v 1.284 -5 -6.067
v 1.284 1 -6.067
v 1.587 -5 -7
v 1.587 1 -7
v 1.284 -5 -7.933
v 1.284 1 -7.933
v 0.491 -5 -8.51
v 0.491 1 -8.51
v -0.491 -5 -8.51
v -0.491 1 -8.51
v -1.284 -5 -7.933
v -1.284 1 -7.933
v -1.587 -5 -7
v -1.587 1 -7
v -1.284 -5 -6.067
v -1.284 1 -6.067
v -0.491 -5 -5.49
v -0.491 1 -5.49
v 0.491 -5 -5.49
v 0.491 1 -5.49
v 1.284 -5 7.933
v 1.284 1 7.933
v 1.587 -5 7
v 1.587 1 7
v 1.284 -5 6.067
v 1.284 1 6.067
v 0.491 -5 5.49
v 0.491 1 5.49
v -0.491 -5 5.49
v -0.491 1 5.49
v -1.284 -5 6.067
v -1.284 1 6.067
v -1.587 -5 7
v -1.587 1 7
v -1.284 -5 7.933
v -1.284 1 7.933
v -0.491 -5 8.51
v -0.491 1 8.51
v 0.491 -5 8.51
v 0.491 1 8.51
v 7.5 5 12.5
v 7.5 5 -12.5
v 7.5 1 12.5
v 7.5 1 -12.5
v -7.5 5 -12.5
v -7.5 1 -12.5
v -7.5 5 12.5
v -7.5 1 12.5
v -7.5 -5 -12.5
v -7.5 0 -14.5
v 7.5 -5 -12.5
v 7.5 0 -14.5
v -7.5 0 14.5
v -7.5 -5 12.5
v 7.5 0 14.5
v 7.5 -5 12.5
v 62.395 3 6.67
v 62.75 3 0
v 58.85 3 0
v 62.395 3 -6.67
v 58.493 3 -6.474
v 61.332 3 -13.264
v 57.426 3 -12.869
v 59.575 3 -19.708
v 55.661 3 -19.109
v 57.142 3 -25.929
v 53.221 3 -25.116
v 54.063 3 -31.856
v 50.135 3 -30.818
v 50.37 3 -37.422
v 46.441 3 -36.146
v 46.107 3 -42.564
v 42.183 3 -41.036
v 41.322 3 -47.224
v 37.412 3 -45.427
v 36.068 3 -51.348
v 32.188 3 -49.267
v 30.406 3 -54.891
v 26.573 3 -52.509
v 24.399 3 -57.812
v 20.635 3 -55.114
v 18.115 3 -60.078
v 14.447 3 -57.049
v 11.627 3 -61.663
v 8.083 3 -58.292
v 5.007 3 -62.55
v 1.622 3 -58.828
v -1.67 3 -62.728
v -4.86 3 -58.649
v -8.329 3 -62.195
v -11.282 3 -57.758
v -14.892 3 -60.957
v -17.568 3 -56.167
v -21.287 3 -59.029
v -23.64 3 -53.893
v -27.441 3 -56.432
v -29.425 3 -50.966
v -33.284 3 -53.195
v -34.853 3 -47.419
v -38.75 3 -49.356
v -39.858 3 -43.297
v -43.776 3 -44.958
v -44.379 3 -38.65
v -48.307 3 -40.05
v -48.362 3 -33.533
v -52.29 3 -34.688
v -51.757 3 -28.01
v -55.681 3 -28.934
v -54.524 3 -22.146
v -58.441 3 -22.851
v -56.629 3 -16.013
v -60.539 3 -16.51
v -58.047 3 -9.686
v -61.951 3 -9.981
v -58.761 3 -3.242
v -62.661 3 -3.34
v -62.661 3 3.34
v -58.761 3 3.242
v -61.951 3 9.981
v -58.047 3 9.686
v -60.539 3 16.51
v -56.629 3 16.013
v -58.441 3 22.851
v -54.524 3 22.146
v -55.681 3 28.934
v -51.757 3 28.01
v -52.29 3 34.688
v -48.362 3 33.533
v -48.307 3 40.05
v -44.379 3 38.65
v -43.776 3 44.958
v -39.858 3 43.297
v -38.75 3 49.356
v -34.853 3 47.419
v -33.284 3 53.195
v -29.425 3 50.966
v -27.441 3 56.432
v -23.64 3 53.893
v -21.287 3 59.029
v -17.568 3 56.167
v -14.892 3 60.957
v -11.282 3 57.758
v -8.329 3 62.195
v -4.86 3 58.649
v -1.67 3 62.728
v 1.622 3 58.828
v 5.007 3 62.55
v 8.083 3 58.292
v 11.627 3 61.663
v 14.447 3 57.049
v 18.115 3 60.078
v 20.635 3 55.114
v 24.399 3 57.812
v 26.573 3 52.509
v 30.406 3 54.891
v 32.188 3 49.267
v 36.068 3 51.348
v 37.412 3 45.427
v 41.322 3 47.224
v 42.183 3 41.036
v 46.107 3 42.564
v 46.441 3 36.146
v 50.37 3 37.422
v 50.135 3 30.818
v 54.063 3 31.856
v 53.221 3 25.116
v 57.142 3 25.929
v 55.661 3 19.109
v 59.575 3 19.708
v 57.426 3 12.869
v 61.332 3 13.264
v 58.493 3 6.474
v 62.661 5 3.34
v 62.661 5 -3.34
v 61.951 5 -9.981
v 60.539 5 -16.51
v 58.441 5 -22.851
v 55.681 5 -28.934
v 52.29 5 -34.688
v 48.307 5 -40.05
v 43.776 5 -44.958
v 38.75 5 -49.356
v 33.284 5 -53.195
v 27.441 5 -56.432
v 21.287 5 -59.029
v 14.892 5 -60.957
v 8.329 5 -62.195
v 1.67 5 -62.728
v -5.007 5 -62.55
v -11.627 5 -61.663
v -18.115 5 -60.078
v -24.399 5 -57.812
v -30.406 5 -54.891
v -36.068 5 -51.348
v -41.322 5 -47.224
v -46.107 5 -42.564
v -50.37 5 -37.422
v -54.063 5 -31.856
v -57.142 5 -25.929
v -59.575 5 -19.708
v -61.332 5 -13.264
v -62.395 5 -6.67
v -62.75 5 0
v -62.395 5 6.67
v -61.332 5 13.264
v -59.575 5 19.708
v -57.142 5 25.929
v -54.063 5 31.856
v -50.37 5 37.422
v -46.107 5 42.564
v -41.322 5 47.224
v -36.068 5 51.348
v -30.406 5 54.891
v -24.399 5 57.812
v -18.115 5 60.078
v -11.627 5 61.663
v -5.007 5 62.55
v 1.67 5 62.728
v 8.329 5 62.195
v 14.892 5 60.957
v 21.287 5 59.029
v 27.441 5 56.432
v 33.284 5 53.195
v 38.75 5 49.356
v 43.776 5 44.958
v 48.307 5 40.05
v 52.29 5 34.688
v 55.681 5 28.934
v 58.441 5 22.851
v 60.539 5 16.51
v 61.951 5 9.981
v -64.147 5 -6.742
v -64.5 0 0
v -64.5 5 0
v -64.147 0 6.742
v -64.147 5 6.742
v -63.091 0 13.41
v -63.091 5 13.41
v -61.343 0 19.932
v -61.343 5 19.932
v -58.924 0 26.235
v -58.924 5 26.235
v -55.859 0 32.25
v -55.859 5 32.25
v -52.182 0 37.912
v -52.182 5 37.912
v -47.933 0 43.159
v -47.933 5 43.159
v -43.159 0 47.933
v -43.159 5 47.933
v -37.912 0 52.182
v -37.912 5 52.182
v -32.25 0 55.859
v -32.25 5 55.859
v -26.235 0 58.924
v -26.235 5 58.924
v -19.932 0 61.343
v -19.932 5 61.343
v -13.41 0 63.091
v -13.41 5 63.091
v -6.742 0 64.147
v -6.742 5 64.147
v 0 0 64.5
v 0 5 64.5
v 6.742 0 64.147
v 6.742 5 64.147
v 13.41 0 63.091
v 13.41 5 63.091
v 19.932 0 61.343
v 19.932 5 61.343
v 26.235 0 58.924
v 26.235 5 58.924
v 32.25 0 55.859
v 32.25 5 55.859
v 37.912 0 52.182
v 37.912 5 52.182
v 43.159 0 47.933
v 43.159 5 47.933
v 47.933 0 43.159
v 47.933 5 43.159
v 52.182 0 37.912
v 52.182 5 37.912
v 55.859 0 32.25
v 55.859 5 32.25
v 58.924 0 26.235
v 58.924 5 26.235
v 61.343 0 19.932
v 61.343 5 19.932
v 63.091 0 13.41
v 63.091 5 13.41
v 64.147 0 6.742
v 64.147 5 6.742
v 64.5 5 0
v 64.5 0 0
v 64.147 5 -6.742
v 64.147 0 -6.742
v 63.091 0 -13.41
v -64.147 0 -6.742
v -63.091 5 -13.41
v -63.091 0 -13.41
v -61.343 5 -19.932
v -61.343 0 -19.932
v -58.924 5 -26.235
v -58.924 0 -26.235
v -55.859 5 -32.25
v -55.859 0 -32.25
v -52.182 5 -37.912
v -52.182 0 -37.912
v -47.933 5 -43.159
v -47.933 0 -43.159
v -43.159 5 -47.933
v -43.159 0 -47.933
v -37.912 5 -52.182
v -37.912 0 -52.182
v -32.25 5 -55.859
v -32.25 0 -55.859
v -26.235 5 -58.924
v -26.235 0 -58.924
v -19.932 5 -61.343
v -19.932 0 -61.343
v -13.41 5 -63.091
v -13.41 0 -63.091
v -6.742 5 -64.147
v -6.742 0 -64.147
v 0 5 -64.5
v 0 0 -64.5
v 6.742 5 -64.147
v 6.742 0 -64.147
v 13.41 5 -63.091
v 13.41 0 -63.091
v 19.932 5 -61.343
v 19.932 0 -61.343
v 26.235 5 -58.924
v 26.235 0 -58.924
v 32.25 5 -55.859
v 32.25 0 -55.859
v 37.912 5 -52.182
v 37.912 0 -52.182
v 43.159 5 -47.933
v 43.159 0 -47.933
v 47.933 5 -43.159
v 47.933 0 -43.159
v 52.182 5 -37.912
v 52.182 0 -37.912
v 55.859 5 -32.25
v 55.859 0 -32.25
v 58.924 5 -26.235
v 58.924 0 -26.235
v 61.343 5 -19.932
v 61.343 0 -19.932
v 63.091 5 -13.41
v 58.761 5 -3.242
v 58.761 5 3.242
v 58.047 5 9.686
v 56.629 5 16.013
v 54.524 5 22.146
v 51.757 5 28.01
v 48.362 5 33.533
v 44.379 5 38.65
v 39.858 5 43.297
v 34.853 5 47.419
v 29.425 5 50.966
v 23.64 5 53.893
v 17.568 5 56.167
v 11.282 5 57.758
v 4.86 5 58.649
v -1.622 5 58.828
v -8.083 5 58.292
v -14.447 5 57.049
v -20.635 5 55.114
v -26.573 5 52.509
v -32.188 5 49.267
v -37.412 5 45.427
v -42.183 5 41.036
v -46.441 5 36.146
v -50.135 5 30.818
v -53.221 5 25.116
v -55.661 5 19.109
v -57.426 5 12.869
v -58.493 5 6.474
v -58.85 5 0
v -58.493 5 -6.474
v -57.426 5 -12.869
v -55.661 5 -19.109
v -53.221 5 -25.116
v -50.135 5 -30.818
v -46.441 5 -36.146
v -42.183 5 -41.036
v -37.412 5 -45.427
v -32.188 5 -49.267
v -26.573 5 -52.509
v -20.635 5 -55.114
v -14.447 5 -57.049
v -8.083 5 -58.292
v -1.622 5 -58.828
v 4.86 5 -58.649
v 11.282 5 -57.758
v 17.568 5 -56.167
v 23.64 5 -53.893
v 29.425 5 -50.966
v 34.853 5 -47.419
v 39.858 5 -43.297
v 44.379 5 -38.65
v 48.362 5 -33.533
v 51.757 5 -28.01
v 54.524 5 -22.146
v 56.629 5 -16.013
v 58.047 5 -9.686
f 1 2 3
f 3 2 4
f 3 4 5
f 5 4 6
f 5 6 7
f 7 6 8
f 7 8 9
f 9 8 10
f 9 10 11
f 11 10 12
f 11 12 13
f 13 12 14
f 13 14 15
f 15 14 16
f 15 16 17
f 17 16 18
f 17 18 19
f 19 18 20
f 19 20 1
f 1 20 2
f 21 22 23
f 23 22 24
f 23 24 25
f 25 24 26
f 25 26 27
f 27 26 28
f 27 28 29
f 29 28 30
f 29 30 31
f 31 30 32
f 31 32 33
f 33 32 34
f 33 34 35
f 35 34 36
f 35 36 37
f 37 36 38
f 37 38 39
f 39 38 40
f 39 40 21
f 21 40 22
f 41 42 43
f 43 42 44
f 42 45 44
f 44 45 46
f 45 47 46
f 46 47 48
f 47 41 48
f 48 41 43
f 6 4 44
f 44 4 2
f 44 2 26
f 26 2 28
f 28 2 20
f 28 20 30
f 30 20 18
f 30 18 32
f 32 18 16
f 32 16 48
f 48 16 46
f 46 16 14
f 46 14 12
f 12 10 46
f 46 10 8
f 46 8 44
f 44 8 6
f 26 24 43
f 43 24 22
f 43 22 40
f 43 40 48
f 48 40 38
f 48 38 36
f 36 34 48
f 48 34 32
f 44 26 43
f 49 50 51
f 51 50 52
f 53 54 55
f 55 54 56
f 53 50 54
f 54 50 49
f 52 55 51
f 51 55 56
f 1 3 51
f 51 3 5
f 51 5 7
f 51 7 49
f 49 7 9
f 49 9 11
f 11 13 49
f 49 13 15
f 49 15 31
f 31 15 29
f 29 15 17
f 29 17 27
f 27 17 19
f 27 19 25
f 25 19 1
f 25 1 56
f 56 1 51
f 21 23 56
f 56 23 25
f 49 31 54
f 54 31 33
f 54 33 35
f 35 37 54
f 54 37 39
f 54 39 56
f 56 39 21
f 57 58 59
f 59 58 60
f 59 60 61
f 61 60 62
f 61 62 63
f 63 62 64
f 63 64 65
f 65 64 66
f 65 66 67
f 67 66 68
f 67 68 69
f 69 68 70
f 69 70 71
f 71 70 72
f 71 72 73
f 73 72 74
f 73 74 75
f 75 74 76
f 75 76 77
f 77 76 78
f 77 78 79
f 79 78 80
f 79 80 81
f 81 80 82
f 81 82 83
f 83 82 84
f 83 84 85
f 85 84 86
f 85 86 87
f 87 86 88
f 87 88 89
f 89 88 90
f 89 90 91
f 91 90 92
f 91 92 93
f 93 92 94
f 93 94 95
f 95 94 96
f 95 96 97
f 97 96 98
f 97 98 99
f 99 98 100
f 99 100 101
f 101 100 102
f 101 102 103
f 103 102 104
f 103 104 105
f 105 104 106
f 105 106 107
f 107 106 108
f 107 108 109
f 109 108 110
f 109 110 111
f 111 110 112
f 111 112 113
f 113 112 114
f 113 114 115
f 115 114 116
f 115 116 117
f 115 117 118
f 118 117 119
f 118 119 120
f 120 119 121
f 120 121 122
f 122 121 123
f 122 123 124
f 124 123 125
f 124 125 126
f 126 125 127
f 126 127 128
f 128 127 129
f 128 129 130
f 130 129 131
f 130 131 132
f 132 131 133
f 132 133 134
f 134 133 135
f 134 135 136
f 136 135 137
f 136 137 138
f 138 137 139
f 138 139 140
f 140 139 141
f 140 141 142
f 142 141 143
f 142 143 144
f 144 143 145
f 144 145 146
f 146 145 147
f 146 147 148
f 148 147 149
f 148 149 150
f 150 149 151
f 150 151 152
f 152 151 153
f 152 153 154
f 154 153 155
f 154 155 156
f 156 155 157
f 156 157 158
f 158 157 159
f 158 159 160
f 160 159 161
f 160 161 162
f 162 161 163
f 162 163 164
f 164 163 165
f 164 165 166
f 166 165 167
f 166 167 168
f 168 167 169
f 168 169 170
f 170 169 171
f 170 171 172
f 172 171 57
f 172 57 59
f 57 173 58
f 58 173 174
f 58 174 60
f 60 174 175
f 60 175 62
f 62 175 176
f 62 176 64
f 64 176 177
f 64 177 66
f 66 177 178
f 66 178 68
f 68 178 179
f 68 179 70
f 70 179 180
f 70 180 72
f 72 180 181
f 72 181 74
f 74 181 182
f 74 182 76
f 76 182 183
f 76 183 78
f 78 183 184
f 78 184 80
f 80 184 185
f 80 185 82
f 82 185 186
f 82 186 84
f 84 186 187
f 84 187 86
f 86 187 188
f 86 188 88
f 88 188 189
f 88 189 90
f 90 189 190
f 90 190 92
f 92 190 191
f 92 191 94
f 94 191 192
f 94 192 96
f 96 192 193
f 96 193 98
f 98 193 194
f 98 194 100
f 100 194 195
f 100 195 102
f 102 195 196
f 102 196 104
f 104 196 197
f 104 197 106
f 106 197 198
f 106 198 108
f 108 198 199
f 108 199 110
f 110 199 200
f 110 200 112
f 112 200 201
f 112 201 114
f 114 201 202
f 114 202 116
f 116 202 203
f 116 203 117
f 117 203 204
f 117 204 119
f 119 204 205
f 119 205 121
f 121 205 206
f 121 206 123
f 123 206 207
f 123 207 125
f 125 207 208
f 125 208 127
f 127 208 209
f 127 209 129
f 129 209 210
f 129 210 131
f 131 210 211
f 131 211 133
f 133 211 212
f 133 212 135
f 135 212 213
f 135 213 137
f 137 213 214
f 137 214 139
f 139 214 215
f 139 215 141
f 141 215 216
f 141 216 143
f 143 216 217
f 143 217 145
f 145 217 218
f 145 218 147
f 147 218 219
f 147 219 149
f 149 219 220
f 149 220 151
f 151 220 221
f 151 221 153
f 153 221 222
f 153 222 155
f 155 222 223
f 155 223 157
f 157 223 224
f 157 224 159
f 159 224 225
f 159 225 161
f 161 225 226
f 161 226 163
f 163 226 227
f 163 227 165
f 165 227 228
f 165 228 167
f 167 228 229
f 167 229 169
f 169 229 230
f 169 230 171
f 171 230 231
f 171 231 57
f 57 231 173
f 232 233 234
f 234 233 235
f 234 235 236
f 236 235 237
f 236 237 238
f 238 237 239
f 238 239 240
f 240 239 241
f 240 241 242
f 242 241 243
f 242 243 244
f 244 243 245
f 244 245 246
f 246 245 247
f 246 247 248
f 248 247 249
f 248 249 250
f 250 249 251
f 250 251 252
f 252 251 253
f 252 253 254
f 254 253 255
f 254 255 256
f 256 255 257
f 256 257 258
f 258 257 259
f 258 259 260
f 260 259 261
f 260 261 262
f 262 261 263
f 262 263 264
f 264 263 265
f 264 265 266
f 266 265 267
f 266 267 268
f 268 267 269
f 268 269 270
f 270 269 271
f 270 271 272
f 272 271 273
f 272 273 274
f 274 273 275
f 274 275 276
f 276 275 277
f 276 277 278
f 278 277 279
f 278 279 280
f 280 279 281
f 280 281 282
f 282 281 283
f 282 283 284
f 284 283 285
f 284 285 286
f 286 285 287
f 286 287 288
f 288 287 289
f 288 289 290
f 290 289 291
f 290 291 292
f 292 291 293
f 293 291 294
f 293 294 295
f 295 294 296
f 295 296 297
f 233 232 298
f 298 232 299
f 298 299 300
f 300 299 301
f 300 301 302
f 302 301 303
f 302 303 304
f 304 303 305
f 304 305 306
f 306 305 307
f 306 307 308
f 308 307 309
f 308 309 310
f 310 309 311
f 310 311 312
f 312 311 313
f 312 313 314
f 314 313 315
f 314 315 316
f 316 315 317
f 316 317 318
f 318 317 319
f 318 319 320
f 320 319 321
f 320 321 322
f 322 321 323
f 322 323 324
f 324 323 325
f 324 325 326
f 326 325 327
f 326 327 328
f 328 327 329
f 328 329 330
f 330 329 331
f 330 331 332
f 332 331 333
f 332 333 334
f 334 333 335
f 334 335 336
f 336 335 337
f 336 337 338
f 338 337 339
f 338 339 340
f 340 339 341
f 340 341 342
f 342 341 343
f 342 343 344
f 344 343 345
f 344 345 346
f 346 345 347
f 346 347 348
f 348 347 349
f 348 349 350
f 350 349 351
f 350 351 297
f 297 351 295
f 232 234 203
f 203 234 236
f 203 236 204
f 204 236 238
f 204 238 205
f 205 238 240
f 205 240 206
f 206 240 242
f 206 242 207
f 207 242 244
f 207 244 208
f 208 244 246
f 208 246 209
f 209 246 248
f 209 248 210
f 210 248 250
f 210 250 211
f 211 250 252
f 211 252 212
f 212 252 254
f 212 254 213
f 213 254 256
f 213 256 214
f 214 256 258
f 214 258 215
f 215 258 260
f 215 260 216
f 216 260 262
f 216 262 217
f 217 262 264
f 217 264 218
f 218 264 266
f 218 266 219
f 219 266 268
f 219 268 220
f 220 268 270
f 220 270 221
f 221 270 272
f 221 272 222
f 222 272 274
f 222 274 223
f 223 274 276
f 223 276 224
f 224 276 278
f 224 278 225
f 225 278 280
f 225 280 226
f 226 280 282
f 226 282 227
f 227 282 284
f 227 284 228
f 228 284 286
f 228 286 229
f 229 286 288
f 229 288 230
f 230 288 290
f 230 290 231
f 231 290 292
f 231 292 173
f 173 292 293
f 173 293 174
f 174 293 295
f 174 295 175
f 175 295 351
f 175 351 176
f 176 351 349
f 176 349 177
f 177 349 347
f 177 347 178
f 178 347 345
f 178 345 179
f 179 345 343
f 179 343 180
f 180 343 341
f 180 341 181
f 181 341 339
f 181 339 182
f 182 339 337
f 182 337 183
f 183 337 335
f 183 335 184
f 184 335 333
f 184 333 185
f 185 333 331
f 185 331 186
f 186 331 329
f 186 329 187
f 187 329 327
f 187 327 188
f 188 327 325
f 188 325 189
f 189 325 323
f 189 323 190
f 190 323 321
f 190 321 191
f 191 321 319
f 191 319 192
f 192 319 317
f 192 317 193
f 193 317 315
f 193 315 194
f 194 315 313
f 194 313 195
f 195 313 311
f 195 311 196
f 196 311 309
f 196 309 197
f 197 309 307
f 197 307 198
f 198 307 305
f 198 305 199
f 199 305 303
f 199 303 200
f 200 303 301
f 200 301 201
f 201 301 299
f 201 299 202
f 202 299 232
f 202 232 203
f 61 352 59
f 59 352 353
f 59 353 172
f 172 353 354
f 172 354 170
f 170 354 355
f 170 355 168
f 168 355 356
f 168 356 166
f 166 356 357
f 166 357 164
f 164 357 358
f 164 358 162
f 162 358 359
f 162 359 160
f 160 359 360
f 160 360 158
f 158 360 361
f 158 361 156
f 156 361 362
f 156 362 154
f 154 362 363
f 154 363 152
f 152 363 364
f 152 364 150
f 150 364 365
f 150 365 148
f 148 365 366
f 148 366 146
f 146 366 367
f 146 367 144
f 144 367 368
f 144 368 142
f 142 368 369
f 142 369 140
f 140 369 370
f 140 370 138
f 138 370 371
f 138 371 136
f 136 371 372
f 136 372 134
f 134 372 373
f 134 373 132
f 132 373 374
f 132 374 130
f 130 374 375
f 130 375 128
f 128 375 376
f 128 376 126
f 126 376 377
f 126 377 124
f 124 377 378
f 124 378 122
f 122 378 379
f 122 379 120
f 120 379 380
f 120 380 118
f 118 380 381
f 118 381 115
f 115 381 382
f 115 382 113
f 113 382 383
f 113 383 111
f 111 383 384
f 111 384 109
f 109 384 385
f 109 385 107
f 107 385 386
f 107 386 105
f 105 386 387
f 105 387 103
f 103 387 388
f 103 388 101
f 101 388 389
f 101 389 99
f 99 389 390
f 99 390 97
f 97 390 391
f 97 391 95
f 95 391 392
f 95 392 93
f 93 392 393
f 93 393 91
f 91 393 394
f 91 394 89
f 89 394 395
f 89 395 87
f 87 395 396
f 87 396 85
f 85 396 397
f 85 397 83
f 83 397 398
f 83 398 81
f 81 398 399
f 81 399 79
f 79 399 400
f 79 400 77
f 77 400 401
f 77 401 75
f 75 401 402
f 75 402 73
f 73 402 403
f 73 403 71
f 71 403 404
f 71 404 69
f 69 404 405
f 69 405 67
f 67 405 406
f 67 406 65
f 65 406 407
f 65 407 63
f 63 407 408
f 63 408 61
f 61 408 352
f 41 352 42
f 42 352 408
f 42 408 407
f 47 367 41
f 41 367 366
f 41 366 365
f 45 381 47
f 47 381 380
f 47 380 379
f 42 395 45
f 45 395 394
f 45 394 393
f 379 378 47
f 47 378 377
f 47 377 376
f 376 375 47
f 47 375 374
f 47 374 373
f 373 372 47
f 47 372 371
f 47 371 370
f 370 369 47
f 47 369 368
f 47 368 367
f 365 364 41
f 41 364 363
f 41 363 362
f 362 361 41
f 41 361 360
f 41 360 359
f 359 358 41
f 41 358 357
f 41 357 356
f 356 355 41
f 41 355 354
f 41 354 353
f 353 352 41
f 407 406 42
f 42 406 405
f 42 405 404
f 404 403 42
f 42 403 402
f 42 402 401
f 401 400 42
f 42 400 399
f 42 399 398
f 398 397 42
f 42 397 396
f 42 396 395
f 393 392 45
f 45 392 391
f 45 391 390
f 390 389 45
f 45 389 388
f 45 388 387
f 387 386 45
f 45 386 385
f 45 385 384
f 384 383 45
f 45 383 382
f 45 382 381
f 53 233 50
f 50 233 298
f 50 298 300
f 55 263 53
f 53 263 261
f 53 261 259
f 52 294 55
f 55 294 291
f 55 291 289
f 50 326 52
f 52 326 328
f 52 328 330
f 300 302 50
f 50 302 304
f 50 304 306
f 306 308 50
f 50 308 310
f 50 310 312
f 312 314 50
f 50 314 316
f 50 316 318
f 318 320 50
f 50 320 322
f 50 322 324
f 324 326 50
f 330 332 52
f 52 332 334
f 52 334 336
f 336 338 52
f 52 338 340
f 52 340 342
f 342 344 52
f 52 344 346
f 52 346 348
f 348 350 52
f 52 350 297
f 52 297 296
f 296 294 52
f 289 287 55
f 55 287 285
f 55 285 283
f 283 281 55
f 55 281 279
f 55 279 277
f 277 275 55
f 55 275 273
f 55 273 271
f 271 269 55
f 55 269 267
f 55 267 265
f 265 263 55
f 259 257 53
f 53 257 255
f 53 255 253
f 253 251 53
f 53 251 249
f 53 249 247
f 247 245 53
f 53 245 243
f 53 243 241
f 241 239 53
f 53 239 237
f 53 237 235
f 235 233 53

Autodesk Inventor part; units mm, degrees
ref_plane "YZ Plane" through (0, 0, 0) normal (1, 0, 0) x (0, 1, 0)
ref_plane "XZ Plane" through (0, 0, 0) normal (0, 1, 0) x (-1, 0, 0)
ref_plane "XY Plane" through (0, 0, 0) normal (0, 0, 1) x (1, 0, 0)
sketch "Boceto1" plane through (0, 0, 0) normal (0, 1, 0) x (-1, 0, 0)
  circle A0 centre (0, 0) radius 62.75
  circle A1 centre (0, 0) radius 64.5
  circle A2 centre (0, 0) radius 58.85
  circle A3 centre (0, 0) radius 62.75
  circle A4 centre (0, 0) radius 58.85
  dimension "d0" = 125.5
  dimension "d1" = 129
  dimension "d2" = 117.7
extrude "Extrusión1" add sketch "Boceto1" along normal blind 5
sketch "Boceto3" plane through (0, 0, 0) normal (0, -1, 0) x (1, 0, 0)
  circle A0 centre (0, 0) radius 58.85
  circle A1 centre (0, 0) radius 62.75
extrude "Extrusión2" add sketch "Boceto3" against normal blind 3
sketch "Boceto4" plane through (0, 0, 0) normal (0, -1, 0) x (1, 0, 0)
  line L0 (-7.5, 12.5) -> (7.5, 12.5)
  line L1 (7.5, 12.5) -> (7.5, -12.5)
  line L2 (7.5, -12.5) -> (-7.5, -12.5)
  line L3 (-7.5, -12.5) -> (-7.5, 12.5)
  line L4 (-7.5, 12.5) -> (7.5, -12.5) construction
  line L5 (7.5, 12.5) -> (-7.5, -12.5) construction
  point P0 (0, 0)
  dimension "d7" = 15
  dimension "d8" = 25
extrude "Extrusión3" add sketch "Boceto4" along normal blind 5
sketch "Boceto5" plane through (-7.5, 0, -12.5) normal (-1, 0, 0) x (0, 0, 1)
  line L0 (0, -5) -> (25, -5) projected
  line L1 (25, -5) -> (25, 0)
  line L2 (25, 0) -> (27, 0)
  line L3 (77, 0) -> (-52, 0) projected
  line L4 (27, 0) -> (25, -5)
  line L5 (0, 0) -> (-2, 0)
  line L6 (-2, 0) -> (0, -5)
  line L7 (0, 0) -> (0, -5)
  point P0 (12.5, 0)
  dimension "d11" = 2
  dimension "d12" = 2
extrude "Extrusión4" add sketch "Boceto5" against normal blind 15 contours L6 L3 L7 | L1 L2 L4
sketch "Boceto9" plane through (0, 5, 0) normal (0, 1, 0) x (1, 0, 0)
  line L0 (-7.5, 12.5) -> (7.5, 12.5)
  line L1 (7.5, 12.5) -> (7.5, -12.5)
  line L2 (7.5, -12.5) -> (-7.5, -12.5)
  line L3 (-7.5, -12.5) -> (-7.5, 12.5)
  line L4 (-7.5, 12.5) -> (7.5, -12.5) construction
  line L5 (7.5, 12.5) -> (-7.5, -12.5) construction
  point P0 (0, 0)
  dimension "d15" = 25
  dimension "d16" = 15
extrude "Extrusión5" cut sketch "Boceto9" against normal blind 4
sketch "Boceto10" plane through (0, 1, 0) normal (0, 1, 0) x (1, 0, 0)
  circle A0 centre (0, -7) radius 1.5875
  circle A1 centre (0, 7) radius 1.5875
  point P0 (0, 0)
  dimension "d19" = 3.175
  dimension "d20" = 3.175
  dimension "d21" = 14
  dimension "d22" = 7
extrude "Extrusión6" cut sketch "Boceto10" against normal blind 6
properties part number "Base_Taza"
